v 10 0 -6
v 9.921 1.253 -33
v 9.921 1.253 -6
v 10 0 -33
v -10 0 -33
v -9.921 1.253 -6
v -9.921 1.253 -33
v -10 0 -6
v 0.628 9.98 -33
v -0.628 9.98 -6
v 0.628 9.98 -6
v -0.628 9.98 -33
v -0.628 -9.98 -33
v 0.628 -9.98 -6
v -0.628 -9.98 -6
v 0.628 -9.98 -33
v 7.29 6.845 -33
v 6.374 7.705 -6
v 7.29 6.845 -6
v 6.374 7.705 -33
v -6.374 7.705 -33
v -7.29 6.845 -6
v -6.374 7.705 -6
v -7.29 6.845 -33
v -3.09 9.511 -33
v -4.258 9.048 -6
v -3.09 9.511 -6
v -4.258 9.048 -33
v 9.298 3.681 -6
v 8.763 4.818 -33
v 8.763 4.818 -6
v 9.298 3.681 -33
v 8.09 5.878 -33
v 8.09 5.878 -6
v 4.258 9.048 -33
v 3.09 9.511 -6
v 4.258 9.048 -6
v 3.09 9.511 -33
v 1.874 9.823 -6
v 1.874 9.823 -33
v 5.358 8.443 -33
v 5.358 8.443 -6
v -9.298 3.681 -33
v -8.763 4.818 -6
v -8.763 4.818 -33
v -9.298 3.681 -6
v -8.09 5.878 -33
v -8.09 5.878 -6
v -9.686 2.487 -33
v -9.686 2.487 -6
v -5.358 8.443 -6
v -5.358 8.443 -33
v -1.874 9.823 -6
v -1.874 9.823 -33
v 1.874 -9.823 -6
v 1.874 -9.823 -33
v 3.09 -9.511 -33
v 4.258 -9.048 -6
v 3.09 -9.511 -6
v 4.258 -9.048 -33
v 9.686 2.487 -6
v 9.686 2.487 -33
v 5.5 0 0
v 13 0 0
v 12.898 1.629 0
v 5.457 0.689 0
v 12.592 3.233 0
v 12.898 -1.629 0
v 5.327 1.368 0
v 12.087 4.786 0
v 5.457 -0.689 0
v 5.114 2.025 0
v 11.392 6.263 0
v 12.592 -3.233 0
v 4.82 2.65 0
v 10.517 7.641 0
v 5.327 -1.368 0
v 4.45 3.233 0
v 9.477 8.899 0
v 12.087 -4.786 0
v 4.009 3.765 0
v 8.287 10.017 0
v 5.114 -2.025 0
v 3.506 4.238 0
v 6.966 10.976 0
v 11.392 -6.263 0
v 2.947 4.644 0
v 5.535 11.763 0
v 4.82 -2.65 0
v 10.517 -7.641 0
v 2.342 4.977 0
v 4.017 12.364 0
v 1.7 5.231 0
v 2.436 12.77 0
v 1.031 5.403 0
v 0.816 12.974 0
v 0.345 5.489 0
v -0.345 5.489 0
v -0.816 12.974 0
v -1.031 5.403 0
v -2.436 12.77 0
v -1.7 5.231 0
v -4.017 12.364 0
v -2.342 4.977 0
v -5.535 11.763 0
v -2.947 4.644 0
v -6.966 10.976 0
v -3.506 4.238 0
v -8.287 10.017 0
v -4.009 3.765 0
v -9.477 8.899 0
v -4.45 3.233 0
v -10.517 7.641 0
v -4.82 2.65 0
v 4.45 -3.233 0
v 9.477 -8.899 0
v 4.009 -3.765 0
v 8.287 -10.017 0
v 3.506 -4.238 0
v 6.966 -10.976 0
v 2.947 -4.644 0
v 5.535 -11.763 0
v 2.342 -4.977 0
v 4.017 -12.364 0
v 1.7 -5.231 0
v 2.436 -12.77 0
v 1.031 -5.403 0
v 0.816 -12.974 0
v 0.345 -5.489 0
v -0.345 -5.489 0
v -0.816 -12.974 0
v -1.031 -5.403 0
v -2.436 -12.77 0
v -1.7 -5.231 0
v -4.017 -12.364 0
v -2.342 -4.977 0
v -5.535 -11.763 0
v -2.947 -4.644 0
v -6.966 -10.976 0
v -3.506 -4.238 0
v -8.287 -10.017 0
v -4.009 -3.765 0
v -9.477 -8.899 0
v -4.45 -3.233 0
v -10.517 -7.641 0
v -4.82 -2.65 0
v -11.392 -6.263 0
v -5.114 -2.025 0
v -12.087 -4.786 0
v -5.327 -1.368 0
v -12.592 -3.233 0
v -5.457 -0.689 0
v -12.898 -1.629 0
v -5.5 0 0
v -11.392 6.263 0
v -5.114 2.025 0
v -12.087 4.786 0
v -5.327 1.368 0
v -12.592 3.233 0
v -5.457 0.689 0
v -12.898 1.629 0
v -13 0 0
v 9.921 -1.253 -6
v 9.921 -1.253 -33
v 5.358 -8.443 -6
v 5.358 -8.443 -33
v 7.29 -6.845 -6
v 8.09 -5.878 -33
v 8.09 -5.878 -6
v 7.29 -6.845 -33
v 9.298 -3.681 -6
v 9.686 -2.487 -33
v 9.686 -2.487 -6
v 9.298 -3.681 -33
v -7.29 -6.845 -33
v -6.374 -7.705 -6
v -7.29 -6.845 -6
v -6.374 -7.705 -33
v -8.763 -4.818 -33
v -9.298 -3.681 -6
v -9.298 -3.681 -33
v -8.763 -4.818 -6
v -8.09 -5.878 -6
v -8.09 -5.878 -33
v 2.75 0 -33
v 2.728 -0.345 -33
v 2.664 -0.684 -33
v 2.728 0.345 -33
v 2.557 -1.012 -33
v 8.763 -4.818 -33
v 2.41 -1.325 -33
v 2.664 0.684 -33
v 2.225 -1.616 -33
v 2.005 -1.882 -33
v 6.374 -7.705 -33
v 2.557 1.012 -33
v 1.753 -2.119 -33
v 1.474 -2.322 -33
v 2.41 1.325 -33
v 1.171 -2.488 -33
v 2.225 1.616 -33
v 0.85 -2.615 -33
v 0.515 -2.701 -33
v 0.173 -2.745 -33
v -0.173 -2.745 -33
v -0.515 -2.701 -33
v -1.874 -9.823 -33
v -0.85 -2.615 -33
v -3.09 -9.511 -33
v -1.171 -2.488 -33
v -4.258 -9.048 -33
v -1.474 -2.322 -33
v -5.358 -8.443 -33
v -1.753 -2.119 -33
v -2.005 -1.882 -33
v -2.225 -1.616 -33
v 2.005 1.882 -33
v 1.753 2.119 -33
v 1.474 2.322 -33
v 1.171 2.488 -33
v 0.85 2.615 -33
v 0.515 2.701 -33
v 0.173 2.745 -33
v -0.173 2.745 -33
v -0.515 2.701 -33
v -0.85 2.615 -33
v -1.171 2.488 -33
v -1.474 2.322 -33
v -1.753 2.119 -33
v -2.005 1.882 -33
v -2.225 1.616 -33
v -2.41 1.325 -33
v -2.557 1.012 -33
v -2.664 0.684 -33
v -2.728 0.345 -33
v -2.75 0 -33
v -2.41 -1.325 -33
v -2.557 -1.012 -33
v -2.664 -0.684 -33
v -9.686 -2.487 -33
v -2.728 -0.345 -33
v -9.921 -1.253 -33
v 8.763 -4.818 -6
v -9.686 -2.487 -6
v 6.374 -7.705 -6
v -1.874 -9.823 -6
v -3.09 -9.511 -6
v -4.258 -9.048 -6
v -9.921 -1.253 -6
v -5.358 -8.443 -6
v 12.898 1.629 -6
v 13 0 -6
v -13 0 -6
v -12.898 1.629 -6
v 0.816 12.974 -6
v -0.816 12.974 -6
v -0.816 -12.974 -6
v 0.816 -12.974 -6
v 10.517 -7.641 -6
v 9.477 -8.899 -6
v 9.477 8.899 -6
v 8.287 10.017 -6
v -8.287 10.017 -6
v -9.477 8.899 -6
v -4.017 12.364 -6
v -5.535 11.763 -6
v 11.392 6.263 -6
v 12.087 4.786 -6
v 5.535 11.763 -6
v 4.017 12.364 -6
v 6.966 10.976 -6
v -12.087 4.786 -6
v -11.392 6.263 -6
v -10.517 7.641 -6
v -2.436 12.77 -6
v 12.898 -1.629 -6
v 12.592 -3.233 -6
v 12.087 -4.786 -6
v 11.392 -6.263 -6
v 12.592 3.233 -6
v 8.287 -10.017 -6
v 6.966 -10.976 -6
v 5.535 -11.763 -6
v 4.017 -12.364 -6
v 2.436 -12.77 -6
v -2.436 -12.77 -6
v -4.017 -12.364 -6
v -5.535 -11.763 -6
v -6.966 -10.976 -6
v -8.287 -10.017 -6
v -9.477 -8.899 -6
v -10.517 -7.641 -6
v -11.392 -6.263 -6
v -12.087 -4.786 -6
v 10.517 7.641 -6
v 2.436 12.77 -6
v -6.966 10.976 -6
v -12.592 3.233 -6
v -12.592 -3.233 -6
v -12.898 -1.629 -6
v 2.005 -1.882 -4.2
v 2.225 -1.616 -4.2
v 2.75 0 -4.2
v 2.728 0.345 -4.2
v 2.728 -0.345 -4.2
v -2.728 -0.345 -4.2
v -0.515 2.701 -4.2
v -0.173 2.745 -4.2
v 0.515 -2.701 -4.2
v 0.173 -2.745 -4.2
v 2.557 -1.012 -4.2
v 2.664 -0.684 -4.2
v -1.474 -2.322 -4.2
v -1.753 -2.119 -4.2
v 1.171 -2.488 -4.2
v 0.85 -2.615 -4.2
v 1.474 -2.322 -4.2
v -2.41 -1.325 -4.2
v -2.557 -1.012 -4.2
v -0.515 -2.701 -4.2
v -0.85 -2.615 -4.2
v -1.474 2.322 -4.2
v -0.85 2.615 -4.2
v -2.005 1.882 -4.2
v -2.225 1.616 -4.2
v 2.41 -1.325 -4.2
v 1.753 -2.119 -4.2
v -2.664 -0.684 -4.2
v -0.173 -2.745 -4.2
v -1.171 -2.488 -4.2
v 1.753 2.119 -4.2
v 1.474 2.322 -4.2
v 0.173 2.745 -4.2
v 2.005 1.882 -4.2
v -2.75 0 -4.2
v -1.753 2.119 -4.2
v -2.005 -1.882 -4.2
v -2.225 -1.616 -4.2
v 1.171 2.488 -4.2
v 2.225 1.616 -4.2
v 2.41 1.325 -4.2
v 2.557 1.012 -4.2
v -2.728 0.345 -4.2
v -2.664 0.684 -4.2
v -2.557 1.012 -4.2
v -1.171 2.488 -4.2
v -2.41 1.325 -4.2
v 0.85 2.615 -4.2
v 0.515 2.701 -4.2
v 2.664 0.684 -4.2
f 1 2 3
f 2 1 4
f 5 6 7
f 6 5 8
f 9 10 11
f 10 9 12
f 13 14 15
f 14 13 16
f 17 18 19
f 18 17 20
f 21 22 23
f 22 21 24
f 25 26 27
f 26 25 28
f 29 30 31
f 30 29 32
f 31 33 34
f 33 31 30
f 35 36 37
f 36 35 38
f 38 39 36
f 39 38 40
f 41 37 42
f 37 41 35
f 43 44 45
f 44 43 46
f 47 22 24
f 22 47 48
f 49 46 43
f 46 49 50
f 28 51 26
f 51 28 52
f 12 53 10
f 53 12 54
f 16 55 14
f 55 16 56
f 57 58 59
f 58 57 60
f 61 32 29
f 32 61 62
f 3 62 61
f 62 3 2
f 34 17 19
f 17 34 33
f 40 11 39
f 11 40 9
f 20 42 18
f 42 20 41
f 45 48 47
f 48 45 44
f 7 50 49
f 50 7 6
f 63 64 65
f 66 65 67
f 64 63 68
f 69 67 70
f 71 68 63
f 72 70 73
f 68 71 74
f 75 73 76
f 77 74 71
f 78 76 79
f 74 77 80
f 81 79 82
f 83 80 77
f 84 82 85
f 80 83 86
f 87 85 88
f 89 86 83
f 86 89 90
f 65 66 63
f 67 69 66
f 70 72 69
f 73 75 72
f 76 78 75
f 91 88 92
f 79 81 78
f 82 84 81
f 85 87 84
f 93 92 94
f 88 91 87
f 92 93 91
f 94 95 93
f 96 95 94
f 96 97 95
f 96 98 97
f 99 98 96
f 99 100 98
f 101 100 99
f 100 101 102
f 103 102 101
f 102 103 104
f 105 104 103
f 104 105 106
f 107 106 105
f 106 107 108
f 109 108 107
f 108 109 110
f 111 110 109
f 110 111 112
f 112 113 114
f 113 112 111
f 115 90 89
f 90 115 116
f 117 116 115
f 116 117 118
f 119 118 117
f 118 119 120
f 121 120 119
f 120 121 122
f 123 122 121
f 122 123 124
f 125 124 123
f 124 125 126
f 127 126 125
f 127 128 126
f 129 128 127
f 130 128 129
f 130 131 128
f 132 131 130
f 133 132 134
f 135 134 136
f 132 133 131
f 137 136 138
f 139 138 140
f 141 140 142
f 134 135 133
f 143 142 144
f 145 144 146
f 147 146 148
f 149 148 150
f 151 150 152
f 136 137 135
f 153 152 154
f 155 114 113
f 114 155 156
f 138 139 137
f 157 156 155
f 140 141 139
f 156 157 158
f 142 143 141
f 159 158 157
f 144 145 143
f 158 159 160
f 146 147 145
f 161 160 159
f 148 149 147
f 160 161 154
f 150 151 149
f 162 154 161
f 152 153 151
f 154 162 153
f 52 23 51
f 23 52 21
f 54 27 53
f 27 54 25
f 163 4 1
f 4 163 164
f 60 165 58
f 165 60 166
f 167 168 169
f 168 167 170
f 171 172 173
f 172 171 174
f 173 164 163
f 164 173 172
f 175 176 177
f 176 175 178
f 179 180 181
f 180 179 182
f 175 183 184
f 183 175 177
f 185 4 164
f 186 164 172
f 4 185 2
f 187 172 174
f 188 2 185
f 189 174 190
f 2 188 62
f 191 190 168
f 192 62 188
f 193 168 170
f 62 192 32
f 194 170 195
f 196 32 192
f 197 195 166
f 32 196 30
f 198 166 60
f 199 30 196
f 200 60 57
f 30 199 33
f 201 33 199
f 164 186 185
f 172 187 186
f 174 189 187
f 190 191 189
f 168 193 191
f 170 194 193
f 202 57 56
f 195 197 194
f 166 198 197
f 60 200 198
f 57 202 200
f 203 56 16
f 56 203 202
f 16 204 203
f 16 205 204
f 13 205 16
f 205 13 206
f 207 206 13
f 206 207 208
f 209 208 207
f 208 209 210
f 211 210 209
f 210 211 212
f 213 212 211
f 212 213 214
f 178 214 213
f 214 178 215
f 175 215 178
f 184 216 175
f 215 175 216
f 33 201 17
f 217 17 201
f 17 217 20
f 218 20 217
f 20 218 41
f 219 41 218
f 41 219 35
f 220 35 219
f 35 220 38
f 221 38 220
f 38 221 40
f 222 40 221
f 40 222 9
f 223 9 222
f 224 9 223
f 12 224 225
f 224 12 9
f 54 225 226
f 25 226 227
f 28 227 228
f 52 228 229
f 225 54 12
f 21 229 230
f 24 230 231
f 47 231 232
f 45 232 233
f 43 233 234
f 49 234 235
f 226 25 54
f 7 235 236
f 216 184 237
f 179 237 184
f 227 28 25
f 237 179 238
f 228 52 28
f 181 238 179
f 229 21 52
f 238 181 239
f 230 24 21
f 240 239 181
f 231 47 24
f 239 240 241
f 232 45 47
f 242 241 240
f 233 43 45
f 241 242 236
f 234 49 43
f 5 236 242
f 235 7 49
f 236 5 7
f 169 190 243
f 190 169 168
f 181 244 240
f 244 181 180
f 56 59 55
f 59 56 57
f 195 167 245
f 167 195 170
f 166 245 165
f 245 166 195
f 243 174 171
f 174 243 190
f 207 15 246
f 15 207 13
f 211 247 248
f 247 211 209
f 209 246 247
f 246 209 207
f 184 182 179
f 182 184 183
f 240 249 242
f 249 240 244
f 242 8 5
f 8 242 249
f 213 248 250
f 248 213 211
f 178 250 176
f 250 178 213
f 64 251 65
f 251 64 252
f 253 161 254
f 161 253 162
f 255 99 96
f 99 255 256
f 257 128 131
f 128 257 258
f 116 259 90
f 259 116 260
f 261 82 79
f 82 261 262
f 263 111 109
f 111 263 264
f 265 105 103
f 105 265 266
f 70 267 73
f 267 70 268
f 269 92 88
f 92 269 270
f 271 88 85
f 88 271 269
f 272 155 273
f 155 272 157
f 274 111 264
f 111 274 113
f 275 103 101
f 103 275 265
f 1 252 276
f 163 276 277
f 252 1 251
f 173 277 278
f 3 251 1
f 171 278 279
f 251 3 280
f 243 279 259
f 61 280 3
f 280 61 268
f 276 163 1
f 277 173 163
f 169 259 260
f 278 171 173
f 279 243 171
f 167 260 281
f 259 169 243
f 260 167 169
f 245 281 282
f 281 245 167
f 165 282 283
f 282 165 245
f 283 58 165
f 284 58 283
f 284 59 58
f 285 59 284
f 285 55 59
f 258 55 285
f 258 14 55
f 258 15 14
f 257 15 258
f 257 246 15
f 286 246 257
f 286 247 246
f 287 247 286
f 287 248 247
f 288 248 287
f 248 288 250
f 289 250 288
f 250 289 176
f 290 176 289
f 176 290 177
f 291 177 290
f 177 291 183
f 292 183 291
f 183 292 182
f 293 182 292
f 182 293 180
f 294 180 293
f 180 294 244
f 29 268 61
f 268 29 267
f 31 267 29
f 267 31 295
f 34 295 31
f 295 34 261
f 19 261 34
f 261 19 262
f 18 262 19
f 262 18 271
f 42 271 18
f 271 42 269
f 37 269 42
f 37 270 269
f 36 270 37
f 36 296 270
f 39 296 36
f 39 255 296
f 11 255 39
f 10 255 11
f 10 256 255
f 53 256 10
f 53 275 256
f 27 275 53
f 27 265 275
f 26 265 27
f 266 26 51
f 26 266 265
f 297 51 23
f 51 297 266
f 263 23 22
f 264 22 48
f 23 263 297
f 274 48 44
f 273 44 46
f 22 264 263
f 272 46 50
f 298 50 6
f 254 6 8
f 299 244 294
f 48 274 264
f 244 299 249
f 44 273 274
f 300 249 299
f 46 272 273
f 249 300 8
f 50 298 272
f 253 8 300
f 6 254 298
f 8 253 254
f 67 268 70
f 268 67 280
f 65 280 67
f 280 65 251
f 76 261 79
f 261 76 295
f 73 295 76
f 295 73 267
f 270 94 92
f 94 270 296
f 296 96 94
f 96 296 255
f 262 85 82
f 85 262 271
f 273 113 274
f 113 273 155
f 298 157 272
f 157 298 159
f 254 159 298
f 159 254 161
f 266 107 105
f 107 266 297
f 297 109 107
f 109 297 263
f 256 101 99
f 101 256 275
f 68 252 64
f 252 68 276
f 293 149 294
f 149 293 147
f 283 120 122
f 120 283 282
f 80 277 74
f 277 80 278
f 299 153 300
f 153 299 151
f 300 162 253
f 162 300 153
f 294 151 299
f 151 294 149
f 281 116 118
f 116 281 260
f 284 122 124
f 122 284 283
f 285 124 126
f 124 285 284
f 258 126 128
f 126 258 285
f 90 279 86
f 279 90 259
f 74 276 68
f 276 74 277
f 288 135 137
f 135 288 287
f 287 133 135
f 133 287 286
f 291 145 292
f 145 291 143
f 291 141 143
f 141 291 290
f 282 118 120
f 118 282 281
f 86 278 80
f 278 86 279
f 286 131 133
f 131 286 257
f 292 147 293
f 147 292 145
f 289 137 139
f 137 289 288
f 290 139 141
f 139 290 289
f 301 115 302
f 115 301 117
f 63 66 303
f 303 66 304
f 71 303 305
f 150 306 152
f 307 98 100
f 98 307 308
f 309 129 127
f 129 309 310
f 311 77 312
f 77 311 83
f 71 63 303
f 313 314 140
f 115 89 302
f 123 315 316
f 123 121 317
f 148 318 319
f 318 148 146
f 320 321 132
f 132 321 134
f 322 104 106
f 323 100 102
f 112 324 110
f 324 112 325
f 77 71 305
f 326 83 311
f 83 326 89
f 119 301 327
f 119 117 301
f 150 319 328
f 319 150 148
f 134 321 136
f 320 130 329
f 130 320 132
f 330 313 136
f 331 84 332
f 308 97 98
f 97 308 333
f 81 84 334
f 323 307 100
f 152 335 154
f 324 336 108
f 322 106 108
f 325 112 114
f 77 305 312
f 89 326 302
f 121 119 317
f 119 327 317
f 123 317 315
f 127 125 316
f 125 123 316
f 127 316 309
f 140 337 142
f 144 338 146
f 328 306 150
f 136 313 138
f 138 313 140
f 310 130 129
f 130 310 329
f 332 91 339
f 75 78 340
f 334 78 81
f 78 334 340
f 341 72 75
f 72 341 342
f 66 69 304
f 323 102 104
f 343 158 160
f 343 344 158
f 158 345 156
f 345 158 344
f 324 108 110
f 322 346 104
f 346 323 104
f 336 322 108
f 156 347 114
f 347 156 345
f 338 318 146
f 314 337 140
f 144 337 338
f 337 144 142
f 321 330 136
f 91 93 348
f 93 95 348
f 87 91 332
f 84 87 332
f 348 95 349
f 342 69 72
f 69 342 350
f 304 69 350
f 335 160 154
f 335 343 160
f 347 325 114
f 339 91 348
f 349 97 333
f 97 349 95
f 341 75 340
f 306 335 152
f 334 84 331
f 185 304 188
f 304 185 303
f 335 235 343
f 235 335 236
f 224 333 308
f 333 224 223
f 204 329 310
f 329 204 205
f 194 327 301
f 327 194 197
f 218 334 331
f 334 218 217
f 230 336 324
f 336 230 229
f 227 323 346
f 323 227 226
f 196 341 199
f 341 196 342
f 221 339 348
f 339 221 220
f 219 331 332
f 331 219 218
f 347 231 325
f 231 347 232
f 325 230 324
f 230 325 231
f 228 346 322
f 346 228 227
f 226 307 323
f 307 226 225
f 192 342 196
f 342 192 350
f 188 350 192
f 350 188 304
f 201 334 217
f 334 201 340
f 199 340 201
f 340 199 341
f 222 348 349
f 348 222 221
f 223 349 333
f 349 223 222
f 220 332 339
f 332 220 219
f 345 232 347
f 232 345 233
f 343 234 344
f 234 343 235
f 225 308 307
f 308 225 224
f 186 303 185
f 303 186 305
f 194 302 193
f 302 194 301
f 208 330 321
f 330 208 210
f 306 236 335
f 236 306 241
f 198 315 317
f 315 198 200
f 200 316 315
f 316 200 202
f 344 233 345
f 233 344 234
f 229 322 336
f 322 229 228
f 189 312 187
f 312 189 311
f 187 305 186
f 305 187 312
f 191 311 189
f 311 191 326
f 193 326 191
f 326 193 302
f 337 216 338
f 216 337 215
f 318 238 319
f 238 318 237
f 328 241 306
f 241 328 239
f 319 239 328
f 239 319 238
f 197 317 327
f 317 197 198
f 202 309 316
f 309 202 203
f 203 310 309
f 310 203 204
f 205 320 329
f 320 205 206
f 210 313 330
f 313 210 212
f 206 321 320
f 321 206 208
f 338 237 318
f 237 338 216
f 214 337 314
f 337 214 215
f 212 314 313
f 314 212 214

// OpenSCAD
$fn = 50;


difference() {
	union() {
		translate(v = [0, 0, -33.0000000000]) {
			cylinder(h = 33, r = 10.0000000000);
		}
		translate(v = [0, 0, -6.0000000000]) {
			cylinder(h = 6, r = 13.0000000000);
		}
	}
	union() {
		translate(v = [0, 0, 0]) {
			rotate(a = [0, 0, 0]) {
				difference() {
					union() {
						#translate(v = [0, 0, -33.0000000000]) {
							cylinder(h = 33, r = 2.2500000000);
						}
						#translate(v = [0, 0, -4.2000000000]) {
							cylinder(h = 4.2000000000, r = 10.0000000000, r1 = 2.7500000000, r2 = 5.5000000000);
						}
						#translate(v = [0, 0, -33.0000000000]) {
							cylinder(h = 33, r = 2.7500000000);
						}
						#translate(v = [0, 0, -33.0000000000]) {
							cylinder(h = 33, r = 2.2500000000);
						}
					}
					union();
				}
			}
		}
	}
}
